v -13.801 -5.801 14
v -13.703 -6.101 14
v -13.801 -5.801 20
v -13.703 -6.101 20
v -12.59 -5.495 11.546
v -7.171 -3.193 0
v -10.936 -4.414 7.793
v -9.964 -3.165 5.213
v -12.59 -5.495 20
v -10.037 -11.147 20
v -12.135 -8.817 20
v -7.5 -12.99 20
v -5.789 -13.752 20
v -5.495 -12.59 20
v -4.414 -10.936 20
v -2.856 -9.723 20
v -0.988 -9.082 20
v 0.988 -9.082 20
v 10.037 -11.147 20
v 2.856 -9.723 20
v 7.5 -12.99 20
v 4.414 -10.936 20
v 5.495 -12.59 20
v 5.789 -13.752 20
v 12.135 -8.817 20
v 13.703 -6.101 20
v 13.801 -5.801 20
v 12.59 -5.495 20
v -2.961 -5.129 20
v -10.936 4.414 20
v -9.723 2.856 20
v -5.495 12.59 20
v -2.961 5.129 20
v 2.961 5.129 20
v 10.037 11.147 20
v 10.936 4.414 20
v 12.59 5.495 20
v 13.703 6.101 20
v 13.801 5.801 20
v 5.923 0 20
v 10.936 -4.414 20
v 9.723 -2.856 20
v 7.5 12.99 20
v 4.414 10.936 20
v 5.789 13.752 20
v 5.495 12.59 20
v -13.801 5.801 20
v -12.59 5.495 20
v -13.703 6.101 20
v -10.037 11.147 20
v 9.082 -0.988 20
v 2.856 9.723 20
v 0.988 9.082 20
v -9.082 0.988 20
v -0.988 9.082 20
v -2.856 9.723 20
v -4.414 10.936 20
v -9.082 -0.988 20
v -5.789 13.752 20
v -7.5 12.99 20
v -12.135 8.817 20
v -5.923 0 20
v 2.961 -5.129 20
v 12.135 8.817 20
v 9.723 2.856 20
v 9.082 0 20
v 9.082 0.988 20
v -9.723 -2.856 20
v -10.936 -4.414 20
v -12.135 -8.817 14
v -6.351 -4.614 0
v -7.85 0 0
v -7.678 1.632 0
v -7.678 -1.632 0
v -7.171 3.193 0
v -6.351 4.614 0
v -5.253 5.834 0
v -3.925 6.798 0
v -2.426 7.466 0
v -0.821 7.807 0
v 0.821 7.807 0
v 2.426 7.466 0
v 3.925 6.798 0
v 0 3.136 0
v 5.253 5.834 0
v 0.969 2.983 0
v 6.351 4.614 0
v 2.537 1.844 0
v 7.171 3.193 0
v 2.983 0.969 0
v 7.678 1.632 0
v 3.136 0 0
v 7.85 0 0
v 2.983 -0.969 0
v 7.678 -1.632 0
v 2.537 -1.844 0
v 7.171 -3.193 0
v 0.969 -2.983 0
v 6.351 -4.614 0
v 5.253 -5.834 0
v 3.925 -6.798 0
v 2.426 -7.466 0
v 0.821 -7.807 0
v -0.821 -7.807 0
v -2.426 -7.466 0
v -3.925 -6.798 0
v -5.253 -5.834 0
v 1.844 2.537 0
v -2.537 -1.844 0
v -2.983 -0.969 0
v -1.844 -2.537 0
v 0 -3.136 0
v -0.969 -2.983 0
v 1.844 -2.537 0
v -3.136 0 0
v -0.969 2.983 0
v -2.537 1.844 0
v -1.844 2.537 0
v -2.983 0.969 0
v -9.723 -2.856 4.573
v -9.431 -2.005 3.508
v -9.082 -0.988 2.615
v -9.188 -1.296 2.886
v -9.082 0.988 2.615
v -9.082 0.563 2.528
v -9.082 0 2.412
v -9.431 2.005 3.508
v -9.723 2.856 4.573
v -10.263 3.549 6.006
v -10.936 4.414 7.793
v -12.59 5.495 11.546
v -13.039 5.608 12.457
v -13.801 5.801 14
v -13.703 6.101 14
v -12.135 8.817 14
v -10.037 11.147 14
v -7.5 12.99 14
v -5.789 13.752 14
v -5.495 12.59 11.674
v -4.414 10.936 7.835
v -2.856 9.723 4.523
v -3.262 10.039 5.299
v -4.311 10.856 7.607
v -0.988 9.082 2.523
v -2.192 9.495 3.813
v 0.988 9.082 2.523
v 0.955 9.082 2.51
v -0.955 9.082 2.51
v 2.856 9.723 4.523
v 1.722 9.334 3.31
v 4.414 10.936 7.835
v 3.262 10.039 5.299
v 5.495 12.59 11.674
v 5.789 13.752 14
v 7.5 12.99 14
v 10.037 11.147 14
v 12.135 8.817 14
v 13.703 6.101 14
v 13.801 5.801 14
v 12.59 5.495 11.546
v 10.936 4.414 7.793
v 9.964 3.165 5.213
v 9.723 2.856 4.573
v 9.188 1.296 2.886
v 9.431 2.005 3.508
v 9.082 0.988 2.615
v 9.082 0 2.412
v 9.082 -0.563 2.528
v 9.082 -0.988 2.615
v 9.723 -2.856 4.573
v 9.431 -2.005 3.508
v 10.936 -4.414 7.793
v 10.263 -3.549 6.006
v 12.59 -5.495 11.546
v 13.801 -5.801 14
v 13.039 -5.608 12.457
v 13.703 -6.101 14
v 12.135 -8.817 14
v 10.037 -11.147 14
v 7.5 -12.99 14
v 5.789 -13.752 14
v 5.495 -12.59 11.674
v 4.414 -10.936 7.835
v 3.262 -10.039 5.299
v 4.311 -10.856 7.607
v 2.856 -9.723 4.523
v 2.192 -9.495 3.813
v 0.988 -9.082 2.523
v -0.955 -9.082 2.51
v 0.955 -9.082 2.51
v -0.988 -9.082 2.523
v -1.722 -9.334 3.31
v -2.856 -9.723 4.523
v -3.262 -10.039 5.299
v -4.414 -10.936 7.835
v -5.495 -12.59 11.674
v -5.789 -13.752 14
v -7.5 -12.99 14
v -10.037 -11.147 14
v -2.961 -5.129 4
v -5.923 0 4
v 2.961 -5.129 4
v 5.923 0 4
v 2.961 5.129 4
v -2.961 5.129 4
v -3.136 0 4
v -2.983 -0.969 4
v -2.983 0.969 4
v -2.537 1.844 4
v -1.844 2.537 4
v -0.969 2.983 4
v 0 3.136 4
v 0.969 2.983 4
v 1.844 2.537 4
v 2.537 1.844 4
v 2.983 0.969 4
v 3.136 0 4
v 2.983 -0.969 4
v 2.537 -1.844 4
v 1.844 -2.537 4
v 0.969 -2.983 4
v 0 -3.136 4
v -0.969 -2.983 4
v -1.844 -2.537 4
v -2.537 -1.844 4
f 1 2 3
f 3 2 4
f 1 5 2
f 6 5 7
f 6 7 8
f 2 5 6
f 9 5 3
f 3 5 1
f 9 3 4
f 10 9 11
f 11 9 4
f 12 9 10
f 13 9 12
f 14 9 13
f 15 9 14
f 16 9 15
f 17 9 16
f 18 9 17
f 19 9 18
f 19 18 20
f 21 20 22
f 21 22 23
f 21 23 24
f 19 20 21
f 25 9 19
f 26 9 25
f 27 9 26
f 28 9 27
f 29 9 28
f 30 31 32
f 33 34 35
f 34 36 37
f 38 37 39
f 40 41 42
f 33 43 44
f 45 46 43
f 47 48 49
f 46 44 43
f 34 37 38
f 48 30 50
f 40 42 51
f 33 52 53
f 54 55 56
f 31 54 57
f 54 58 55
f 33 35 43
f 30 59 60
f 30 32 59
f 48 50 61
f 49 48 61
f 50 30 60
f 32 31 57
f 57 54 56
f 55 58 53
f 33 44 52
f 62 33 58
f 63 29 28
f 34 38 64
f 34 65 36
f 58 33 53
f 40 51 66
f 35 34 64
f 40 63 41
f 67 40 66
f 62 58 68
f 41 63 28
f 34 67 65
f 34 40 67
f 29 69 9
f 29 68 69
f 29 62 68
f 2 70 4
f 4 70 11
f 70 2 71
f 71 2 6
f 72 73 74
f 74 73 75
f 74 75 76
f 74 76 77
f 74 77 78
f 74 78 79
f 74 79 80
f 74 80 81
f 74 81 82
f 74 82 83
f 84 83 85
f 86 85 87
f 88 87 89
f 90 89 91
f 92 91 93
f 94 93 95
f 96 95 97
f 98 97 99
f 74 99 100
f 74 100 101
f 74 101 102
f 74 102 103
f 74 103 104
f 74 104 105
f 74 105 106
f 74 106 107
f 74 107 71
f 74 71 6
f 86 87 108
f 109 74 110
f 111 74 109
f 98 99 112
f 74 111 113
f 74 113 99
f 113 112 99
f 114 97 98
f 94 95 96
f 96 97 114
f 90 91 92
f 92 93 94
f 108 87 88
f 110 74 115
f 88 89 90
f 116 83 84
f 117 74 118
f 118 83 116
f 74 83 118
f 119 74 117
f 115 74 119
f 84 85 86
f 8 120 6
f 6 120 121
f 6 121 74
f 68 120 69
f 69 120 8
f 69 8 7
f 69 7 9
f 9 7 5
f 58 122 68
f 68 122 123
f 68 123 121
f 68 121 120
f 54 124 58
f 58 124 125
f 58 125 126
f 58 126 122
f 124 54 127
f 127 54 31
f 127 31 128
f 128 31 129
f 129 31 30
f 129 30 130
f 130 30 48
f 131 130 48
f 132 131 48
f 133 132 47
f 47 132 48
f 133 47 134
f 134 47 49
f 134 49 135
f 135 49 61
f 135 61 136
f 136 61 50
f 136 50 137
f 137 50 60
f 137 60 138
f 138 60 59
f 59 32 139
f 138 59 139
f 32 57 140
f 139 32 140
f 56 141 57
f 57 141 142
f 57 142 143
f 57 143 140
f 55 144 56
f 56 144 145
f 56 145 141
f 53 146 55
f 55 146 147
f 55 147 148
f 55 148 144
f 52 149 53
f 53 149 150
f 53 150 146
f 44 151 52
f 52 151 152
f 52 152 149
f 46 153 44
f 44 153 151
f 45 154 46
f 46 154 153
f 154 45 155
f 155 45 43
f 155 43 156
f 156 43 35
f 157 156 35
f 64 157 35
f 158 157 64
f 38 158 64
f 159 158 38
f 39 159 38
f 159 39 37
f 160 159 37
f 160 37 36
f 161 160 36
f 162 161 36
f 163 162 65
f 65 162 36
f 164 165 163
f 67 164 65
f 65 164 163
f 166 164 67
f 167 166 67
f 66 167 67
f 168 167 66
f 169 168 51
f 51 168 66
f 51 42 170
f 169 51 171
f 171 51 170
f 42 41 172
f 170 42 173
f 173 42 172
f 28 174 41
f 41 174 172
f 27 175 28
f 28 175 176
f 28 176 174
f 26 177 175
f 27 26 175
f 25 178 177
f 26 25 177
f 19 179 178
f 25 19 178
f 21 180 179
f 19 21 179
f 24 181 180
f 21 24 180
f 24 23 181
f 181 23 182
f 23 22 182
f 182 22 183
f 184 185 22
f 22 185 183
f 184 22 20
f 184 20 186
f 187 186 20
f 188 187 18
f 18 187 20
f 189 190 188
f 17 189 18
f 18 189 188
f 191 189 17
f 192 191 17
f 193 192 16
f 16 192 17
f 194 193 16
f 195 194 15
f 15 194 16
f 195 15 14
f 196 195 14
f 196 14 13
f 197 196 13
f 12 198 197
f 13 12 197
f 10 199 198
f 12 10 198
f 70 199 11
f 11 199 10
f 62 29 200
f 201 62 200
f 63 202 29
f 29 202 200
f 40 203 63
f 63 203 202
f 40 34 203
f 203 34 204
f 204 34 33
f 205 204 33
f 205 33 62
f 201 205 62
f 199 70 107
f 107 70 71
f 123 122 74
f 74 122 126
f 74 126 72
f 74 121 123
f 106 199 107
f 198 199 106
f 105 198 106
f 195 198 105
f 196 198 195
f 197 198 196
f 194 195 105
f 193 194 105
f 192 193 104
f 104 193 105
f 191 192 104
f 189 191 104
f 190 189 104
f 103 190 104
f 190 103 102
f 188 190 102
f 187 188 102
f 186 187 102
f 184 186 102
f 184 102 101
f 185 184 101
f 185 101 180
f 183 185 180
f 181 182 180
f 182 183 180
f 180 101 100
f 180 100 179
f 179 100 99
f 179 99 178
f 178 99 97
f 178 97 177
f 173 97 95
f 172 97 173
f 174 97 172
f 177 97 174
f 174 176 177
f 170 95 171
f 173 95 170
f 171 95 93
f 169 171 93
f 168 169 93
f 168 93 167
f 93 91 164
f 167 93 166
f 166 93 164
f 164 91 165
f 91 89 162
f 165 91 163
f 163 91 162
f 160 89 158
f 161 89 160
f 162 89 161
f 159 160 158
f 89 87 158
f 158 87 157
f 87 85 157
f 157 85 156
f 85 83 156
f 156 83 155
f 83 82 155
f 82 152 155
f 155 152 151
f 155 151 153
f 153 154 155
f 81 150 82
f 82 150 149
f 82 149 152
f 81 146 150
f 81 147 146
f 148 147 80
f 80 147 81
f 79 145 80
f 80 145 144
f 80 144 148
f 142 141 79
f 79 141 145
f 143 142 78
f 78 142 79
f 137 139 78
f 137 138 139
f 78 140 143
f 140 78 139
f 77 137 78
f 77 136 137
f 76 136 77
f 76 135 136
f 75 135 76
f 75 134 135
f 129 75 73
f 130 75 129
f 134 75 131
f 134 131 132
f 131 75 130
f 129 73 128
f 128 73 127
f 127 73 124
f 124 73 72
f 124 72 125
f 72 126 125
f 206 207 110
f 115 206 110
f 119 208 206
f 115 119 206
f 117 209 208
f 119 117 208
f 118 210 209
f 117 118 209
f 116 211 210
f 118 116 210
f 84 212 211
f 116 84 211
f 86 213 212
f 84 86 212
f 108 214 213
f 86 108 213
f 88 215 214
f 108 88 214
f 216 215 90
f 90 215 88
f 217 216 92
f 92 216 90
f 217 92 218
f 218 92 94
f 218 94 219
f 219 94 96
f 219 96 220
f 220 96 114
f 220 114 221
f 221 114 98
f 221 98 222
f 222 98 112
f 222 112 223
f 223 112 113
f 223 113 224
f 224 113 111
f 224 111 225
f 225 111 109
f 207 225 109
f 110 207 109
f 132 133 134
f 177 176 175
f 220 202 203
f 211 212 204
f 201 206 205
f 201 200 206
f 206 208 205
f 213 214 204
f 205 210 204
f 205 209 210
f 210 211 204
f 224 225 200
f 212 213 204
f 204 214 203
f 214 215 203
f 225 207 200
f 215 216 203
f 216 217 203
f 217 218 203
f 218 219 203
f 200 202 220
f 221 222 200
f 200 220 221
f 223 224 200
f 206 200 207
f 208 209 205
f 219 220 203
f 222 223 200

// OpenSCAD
include <MCAD/nuts_and_bolts.scad>

// Bolt/skrue M6
total_height=20;
handle_height=6;
outer_diameter = 14.7 + 1;
handle_diameter = 30;

bottom_height = 4;

difference() {

	union() {
		translate([0,0,total_height-handle_height]) cylinder(r=handle_diameter/2, h=handle_height, center=false);
		cylinder(r1=outer_diameter/2, r2=handle_diameter/2, h=total_height-handle_height, center=false);
	}
	union() {
		for (i=[0:4]) {
			rotate(i*90, [0,0,1])
			translate([handle_diameter/2,0,0])
			cylinder(r=handle_diameter/5,h=total_height+0.1);
		}
		// should be larger than M6 to have loose fit on bolt
		translate([0,0,-1]) scale(1.05, [1,1,0]) boltHole(6, length=total_height, $fn=20);
		translate([0,0,bottom_height]) scale([1.03, 1.03, 10]) nutHole(6);
	}
}
